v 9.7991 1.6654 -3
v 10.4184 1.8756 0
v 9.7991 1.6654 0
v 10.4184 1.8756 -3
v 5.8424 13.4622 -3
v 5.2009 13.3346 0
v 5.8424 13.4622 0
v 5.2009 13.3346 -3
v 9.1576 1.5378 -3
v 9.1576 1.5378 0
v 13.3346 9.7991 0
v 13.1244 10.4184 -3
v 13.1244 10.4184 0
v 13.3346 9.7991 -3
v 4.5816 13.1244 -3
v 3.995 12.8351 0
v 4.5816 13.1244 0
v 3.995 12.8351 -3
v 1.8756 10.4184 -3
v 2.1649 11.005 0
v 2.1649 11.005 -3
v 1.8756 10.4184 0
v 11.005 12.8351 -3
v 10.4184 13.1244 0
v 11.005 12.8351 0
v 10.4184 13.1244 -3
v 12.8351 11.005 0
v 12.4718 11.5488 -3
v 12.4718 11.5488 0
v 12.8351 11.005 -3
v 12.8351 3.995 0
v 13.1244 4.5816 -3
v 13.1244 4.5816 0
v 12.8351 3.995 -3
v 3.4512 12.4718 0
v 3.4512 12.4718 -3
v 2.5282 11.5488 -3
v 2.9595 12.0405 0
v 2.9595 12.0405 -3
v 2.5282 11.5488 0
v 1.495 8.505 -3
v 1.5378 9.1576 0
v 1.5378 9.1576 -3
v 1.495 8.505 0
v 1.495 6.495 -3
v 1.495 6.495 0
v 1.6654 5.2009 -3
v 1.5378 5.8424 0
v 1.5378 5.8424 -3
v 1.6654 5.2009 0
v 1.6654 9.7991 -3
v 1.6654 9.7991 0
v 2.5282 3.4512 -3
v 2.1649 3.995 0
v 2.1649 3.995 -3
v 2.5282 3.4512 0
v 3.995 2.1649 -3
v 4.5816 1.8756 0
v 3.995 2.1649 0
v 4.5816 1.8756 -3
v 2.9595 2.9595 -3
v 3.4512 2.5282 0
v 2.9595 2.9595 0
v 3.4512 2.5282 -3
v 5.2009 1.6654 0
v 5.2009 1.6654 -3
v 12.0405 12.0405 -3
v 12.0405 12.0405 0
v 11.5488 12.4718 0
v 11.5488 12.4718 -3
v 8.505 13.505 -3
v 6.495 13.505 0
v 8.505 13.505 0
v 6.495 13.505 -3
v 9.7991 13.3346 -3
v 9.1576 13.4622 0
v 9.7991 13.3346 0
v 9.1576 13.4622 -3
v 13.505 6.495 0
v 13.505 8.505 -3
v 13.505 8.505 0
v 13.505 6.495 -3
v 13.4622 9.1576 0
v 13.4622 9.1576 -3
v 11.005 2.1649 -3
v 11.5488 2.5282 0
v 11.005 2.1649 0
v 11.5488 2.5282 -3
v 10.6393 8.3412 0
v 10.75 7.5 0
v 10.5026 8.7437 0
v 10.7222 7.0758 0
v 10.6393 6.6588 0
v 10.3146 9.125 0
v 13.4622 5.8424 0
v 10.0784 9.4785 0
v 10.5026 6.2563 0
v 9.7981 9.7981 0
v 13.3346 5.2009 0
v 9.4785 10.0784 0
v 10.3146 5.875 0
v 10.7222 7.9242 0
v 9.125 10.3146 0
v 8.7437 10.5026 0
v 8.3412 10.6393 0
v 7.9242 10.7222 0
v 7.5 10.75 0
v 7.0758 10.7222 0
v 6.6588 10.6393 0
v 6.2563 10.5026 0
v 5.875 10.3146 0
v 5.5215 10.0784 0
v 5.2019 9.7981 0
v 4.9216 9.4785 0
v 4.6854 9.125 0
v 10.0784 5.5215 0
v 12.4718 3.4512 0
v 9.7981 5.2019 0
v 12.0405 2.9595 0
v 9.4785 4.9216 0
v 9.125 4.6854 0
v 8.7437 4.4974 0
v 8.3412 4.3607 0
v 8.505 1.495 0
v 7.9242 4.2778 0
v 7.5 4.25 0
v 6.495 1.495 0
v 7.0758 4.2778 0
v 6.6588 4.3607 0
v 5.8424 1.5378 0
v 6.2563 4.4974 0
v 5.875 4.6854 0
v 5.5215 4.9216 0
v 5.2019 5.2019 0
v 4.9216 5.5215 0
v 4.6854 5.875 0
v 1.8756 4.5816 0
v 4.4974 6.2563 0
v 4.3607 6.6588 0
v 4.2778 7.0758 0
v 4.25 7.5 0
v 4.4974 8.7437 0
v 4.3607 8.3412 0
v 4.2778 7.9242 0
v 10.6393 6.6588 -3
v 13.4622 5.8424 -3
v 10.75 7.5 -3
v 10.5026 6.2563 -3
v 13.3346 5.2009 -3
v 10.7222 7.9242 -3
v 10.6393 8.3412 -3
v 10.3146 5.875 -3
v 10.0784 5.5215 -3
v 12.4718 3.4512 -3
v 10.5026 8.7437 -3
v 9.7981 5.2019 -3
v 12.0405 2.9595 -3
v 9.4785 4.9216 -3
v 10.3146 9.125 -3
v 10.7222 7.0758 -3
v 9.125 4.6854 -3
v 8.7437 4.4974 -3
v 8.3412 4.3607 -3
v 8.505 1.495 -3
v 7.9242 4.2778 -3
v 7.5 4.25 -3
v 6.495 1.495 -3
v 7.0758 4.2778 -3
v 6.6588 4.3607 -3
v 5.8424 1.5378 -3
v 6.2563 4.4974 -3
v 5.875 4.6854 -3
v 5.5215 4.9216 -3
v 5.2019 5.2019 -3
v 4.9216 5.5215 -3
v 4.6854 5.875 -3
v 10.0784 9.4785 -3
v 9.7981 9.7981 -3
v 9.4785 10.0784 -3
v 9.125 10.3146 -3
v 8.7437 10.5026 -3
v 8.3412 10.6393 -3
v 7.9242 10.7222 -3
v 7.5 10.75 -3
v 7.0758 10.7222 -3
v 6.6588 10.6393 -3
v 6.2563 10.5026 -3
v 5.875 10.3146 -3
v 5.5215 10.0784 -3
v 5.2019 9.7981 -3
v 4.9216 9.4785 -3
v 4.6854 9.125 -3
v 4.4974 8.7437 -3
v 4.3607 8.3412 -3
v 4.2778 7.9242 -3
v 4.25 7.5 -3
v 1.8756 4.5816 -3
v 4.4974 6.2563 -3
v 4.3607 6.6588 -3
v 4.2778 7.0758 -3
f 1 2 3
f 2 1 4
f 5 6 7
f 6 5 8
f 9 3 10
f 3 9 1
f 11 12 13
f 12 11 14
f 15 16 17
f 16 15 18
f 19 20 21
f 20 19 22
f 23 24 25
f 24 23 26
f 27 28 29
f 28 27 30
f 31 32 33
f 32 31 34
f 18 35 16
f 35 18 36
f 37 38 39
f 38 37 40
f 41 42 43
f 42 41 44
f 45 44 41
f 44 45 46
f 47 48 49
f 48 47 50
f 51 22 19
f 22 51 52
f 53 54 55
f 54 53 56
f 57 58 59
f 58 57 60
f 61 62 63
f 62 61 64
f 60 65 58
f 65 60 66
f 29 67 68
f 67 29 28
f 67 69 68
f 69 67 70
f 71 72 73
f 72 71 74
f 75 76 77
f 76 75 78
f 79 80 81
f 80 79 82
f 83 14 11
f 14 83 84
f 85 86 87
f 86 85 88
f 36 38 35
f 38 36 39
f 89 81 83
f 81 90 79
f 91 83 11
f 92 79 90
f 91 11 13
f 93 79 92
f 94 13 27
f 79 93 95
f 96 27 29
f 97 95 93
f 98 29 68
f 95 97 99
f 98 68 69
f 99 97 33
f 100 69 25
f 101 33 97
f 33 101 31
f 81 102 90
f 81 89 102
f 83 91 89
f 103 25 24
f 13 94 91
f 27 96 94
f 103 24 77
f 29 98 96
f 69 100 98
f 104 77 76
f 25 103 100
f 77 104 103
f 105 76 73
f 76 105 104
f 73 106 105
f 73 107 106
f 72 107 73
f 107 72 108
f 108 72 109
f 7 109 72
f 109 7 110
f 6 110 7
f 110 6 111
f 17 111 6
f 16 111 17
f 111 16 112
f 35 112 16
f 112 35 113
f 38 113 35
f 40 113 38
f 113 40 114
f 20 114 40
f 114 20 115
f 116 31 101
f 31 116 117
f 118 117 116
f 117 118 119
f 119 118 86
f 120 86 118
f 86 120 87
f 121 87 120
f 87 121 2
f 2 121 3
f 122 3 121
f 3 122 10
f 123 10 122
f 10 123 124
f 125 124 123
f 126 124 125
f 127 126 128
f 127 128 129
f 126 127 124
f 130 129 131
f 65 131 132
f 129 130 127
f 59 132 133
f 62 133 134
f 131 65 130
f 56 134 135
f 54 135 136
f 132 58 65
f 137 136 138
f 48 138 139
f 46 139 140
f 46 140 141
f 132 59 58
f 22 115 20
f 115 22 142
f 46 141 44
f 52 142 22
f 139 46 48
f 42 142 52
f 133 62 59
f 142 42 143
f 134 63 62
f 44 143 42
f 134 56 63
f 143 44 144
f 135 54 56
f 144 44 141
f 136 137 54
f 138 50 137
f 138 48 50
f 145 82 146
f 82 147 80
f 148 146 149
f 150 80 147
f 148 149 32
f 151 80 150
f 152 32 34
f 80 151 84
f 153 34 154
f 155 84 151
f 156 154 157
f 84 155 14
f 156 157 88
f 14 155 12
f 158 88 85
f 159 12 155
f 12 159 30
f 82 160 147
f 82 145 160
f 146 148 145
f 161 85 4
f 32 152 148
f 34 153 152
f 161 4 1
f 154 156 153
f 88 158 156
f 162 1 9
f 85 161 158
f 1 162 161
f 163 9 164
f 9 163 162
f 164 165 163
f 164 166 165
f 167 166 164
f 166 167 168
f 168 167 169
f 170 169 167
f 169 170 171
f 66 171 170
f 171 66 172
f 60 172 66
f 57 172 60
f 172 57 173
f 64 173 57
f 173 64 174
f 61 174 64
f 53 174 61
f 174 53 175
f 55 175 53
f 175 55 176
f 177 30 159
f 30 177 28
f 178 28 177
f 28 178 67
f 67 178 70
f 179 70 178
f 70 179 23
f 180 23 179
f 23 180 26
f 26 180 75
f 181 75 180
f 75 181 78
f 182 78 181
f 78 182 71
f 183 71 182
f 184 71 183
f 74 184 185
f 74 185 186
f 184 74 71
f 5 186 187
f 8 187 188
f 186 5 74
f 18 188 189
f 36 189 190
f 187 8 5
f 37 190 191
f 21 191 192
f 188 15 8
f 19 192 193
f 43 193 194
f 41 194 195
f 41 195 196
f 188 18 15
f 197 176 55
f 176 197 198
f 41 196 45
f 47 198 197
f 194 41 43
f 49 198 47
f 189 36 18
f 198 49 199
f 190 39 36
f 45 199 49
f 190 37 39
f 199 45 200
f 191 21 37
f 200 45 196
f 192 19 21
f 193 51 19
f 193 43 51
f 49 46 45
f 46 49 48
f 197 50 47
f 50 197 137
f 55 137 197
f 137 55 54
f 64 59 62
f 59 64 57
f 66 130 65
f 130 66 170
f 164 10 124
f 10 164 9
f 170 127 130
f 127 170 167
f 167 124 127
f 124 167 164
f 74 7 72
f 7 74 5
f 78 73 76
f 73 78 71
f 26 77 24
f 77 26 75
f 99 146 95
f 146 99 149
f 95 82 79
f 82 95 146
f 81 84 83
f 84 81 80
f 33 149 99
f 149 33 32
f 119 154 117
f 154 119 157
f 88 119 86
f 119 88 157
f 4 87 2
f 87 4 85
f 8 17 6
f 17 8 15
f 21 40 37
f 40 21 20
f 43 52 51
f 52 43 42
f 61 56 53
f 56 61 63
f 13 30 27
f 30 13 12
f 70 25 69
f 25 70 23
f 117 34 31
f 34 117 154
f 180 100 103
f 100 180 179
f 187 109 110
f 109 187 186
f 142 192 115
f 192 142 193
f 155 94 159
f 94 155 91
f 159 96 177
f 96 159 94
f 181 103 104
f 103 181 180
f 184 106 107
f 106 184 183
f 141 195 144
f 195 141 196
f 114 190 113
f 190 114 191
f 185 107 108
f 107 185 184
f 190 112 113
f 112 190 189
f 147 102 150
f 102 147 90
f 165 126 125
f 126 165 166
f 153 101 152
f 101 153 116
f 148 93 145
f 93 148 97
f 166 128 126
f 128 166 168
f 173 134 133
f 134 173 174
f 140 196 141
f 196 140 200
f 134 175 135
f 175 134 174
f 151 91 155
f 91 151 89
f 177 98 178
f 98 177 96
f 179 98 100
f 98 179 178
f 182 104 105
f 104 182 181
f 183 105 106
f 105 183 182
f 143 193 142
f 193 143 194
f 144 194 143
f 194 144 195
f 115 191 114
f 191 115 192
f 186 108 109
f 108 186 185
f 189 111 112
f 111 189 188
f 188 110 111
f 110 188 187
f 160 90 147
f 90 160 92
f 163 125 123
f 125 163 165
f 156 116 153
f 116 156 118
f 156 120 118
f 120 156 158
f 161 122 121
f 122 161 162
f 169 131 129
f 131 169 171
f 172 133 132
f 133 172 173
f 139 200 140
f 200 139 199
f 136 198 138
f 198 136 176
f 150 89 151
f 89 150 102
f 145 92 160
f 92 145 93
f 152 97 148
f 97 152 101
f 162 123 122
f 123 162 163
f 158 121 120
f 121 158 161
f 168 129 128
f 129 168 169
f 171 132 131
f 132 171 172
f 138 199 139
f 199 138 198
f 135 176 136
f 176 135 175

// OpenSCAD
// Generated by SolidPython 1.1.3 on 2022-09-14 10:10:04
$fn = 48;


difference() {
	union() {
		color(alpha = 1.0000000000, c = "Gold") {
			translate(v = [7.5000000000, 7.5000000000, 0]) {
				rotate(a = [0, 0, 0]) {
					translate(v = [0, 0, -3]) {
						linear_extrude(height = 3) {
							offset(r = 5) {
								square(center = true, size = [2.0100000000, 2.0100000000]);
							}
						}
					}
				}
			}
		}
	}
	union() {
		color(alpha = 1.0000000000, c = "Gold") {
			translate(v = [7.5000000000, 7.5000000000, 0]) {
				rotate(a = [0, 0, 0]) {
					translate(v = [0, 0, -250]) {
						cylinder(h = 500, r = 3.2500000000);
					}
				}
			}
		}
	}
}
/***********************************************
*********      SolidPython code:      **********
************************************************
 
import subprocess

from solid.objects import *
from solid import scad_render_to_file, scad_render

import os

##################################################################################################################################################
##################################################################################################################################################
##################################################################################################################################################
##################################################################################################################################################
######  DIMENSION STUFF
##################################################################################################################################################
##################################################################################################################################################
##################################################################################################################################################
##################################################################################################################################################


mode = "3DPR"
#mode = "LAZE"
#mode = "TURE"
#mode = ""


######  Countersunk
countersunkM = []
WIDTH = 0
DEPTH = 1
countersunkM1width = 0; countersunkM1depth = 0; countersunkM2width = 0; countersunkM2depth = 0
countersunkM3width = 0
countersunkM3depth = 0
countersunkM4width = 0
countersunkM4depth = 0
countersunkM5width = 0
countersunkM5depth = 0
countersunkM6width = 0
countersunkM6depth = 0

######  Holes
holeM = []
holeM1 = 0
holeM2 = 0
holeM3 = 0
holeM4 = 0
holeM5 = 0
holeM6 = 0

######  Nuts
nutM = []
NUTWIDTH = 0
NUTDEPTH = 1
nutM1width = 0
nutM1depth = 0
nutM2width = 0
nutM2depth = 0
nutM3width = 0
nutM3depth = 0
nutM4width = 0
nutM4depth = 0
nutM5width = 0
nutM5depth = 0
nutM6width = 0
nutM6depth = 0

######  OOEB
ooebPinWidth = 0
ooebPinWidthWide = 0


######  Colors
colDefault = "Gold"

colOOEBbase = colDefault

colLEDRed = "red"
colWire = "gray"
    ######  Resistor
colRes = list()
colResistor = "beige"

colResBlack = "black"
colRes.append(colResBlack)
colResBrown = "brown"
colRes.append(colResBrown)
colResRed = "red"
colRes.append(colResRed)
colResOrange = "orange"
colRes.append(colResOrange)
colResYellow = "yellow"
colRes.append(colResYellow)
colResGreen = "green"
colRes.append(colResGreen)
colResBlue = "blue"
colRes.append(colResBlue)
colResPurple = "purple"
colRes.append(colResPurple)
colResGray = "gray"
colRes.append(colResGray)
colResWhite = "white"
colRes.append(colResWhite)





def changeMode(m="3DPR"):
    #print("####################################################      CHANGING MODES TO: " + m)
    global mode
    mode = m
    ######  Countersunk
    global countersunkM, countersunkM1width, countersunkM1depth, countersunkM2width, countersunkM2depth, countersunkM3width, countersunkM3depth, countersunkM4width, countersunkM4depth, countersunkM5width, countersunkM5depth, countersunkM6width, countersunkM6depth
    countersunkM = []
    countersunkM.append([0,0])
    countersunkM1width = 0 if mode== "3DPR" else 0
    countersunkM1depth = 0 if mode== "3DPR" else 0
    countersunkM.append([countersunkM1width,countersunkM1depth])
    countersunkM2width = 0 if mode== "3DPR" else 0
    countersunkM2depth = 0 if mode== "3DPR" else 0
    countersunkM.append([countersunkM2width,countersunkM2depth])
    countersunkM3width = 5.5/2+0.6 if mode== "3DPR" else 5.5/2
    countersunkM3depth = 1.7 if mode== "3DPR" else 1.7
    countersunkM.append([countersunkM3width,countersunkM3depth])
    countersunkM4width = 0 if mode== "3DPR" else 0
    countersunkM4depth = 0 if mode== "3DPR" else 0
    countersunkM.append([countersunkM4width,countersunkM4depth])
    countersunkM5width = 0 if mode== "3DPR" else 0
    countersunkM5depth = 0 if mode== "3DPR" else 0
    countersunkM.append([countersunkM5width,countersunkM5depth])
    countersunkM6width = 0 if mode== "3DPR" else 0
    countersunkM6depth = 0 if mode== "3DPR" else 0
    countersunkM.append([countersunkM6width,countersunkM6depth])
    ######  Holes
    global holeM, holeM1, holeM2, holeM3, holeM4, holeM5, holeM6, holeM7, holeM8
    holeM = []
    holeM1 = 1.2/2 if mode== "3DPR" else 1/2
    holeM2 = 2.3/2 if mode== "3DPR" else 2/2
    holeM3 = 3.4/2 if mode== "3DPR" else 3/2
    holeM4 = 4.4/2 if mode== "3DPR" else 4/2
    holeM5 = 5.4/2 if mode== "3DPR" else 5/2
    holeM6 = 6.5/2 if mode== "3DPR" else 6/2
    holeM7 = 7.5/2 if mode== "3DPR" else 7/2
    holeM8 = 8.6/2 if mode== "3DPR" else 8/2
    holeM.append(0)
    holeM.append(holeM1)
    holeM.append(holeM2)
    holeM.append(holeM3)
    holeM.append(holeM4)
    holeM.append(holeM5)
    holeM.append(holeM6)
    holeM.append(holeM7)
    holeM.append(holeM8)
    #####  Nuts
    global nutM, nutM1width, nutM1depth, nutM2width, nutM2depth, nutM3width, nutM3depth, nutM4width, nutM4depth, nutM5width, nutM5depth, nutM6width, nutM6depth
    nutM = []
    nutM.append([0,0]) 
    #M1 Nut
    nutM1width = 0
    nutM1depth = 0
    nutM.append([nutM1width,nutM1depth])    
    #M2 Nut
    nutM2width = 0
    nutM2depth = 0
    nutM.append([nutM2width,nutM2depth])    
    #M3 Nut
    nutM3width = 6.05 if mode== "3DPR" else 5.5
    nutM3depth = 2.5 if mode== "3DPR" else 2.5
    nutM.append([nutM3width,nutM3depth])    
    #M4 Nut
    nutM4width = 0
    nutM4depth = 0
    nutM.append([nutM4width,nutM4depth])    
    #M5 Nut
    nutM5width = 0
    nutM5depth = 0
    nutM.append([nutM5width,nutM5depth])    
    #M6 Nut
    nutM6width = 11 if mode== "3DPR" else 10
    nutM6depth = 5 if mode== "3DPR" else 5
    nutM.append([nutM6width,nutM6depth])    

    ######  OOEB
    global ooebPinWidth,  ooebPinWidthWide

    ooebPinWidth = 0.6
    if(mode=="3DPR" or mode=="LAZE"):
        ooebPinWidth = 0.6 + 0.6
    ooebPinWidthWide = 1.2
    if(mode=="3DPR" or mode=="LAZE"):
        ooebPinWidthWide = 1.2 + 0.6


changeMode()


""""    
holeM12D = s=="3DPR" ? 1.4/2 : 1.2/2;
holeM16D = s=="3DPR" ? 1.8/2 : 1.6/2;
holeM2 = s=="3DPR" ? 2.3/2 : 2/2;
holeM25D = s=="3DPR" ? 2.8/2 : 2.5/2;
holeM27D = s=="3DPR" ? 3.1/2 : 2.7/2;    
holeM3 = s=="3DPR" ? 3.4/2 : 3/2;
holeM35D = s=="3DPR" ? 3.9/2 : 35/2;
holeM4 = s=="3DPR" ? 4.4/2 : 4/2;
holeM5 = s=="3DPR" ? 5.4/2 : 5/2;
holeM6 = s=="3DPR" ? 6.5/2 : 6/2;
holeM6Minus = s=="3DPR" ? 5.8/2 : 5.9/2;
holeM7 = s=="3DPR" ? 7.5/2 : 7/2;
holeM8 = s=="3DPR" ? 8.6/2 : 8/2;
holeM9 = s=="3DPR" ? 9.6/2 : 9/2;
holeM10 = s=="3DPR" ? 10.6/2 : 10/2;
holeM11 = s=="3DPR" ? 11.6/2 : 11/2;
holeM12 = s=="3DPR" ? 12.6/2 : 12/2;
holeM13 = s=="3DPR" ? 13.6/2 : 13/2;
holeM14 = s=="3DPR" ? 14.6/2 : 14/2;
holeM15 = s=="3DPR" ? 15.6/2 : 15/2;
holeM16 = s=="3DPR" ? 16.6/2 : 16/2;
holeM17 = s=="3DPR" ? 17.6/2 : 17/2;
holeM18 = s=="3DPR" ? 18.6/2 : 18/2;
holeM19 = s=="3DPR" ? 19.6/2 : 19/2;
holeM20 = s=="3DPR" ? 20.6/2 : 20/2;
"""

##################################################################################################################################################
##################################################################################################################################################
##################################################################################################################################################
##################################################################################################################################################
######  REGULAR STUFF
##################################################################################################################################################
##################################################################################################################################################
##################################################################################################################################################
##################################################################################################################################################


def setMode(mode="3DPR"):
    changeMode(mode)

def getMode():
    return mode



def saveToScad(fileName, parts):
    dir =  os.path.dirname(os.path.abspath(fileName))
    Path(dir).mkdir(parents=True, exist_ok=True)
    file_out = scad_render_to_file(parts, fileName, file_header=f'$fn = 48;')


def saveToDxf(fileIn, fileOut=""):
    if fileOut == "":
        fileOut = fileIn.replace(".scad",".dxf")
    saveToFile(fileIn, fileOut)
    
def saveToPng(fileIn, fileOut="",extra="--render"):
    if fileOut == "":
        fileOut = fileIn.replace(".scad",".png")
    saveToFile(fileIn, fileOut)

def saveToStl(fileIn, fileOut=""):
    if fileOut == "":
        fileOut = fileIn.replace(".scad",".stl")
    saveToFile(fileIn, fileOut)
    
def saveToSvg(fileIn, fileOut=""):
    if fileOut == "":
        fileOut = fileIn.replace(".scad",".svg")
    saveToFile(fileIn, fileOut)

def saveToFile(fileIn, fileOut,extra=""):
    extra = extra + " --colorscheme Tomorrow"

    launchStr = 'openscad -o "' + fileOut + '"' + extra + ' "' + fileIn + '"'
    print("            saveToFile launch string: " + launchStr)
    subprocess.run(launchStr)
    x=0



def insert(item,pos=[None,None,None],x=0,y=0,z=0,ex=0,size=[None,None,None],length=0,rot=[None,None,None],rotX=0,rotY=0,rotZ=0,width=0,height=0,depth=100,rad=0,rad2=0,color=colDefault,alpha=1,OOwidth=0,OOheight=0,holes=True,negative=True, name=""):
    return OPSCInsert(item,pos,x,y,z,ex,size,length,rot,rotX,rotY,rotZ,width,height,depth,rad,rad2,color,alpha,OOwidth,OOheight,holes,negative,name)


def OPSCInsert(item,pos=[None,None,None],x=0,y=0,z=0,ex=0,size=[None,None,None],length=0,rot=[None,None,None],rotX=0,rotY=0,rotZ=0,width=0,height=0,depth=100,rad=0,rad2=0,col=colDefault,alpha=1,OOwidth=0,OOheight=0,holes=True,negative=True, name=""):
    
    """
        color(color,alpha){
            translate([x,y,z]){
                    rotate([rotX,rotY,rotZ]){
    """
    returnValue = ""

    #print(pos)

    if pos[0] != None:
        x=pos[0]
        y=pos[1]
        z=pos[2]
    if rot[0] != None:
        rotX=rot[0]
        rotY=rot[1]
        rotZ=rot[2]
    
    returnValue = color(col)(translate((x,y,z))(
                            rotate((rotX,rotY,rotZ))(
                                OPSCInsertIf(item,pos,x,y,z,ex,size,length,rot,rotX,rotY,rotZ,width,height,depth,rad,rad2,col,alpha,OOwidth,OOheight,holes,negative,name)
                            )
                        ))
                
    

    return returnValue

def OPSCInsertIf(item,pos=[None,None,None],x=0,y=0,z=0,ex=0,size=[None,None,None],length=0,rot=[None,None,None],rotX=0,rotY=0,rotZ=0,width=0,height=0,depth=100,rad=0,rad2=0,color=colDefault,alpha=1,OOwidth=0,OOheight=0,holes=True,negative=True, name=""):
    returnValue = cube([10,10,10])

    if size[0] != None:
        width=size[0]
        height=size[1]
        depth=size[2]

    #print("    OPSCInsert item:" + str(item) + " at:[" + str(x) + "," + str(y) + "," + str(z) + "] size: [" + str(width) + "," + str(height) + "," + str(depth) + "]")

    if(item=="cube"):
        returnValue =  translate([0,0,-depth/2])(cube([width,height,depth],center=True))
    elif(item=="cylinder"):        
        returnValue = translate([0,0,-depth/2])(cylinder(r=rad,h=depth,center=True))
    elif(item=="sphere"):        
        returnValue = translate([0,0,-rad])(sphere(r=rad))
    elif(item=="plane"):
        if depth == 100:
            returnValue = insert("cube",size=[1000,1000,0.1],color=color)            
        else:
            returnValue = insert("cube",size=[1000,1000,depth],color=color)                        
    elif(item=="cubeRounded"):
        if(rad == 0):
                            rad = 5
        returnValue =  translate([0,0,-depth])(
                        linear_extrude(height=depth)(                        
                            offset(r=rad)(
                                square((width-rad*2+.01,height-rad*2+.01),center=True)
                                )
                            )
        )
    ######  Countersunk
    elif(item == "countersunkM1" or item == "csM1" ):
        returnValue = OSPCgetCountersunk(rad=1)
    elif(item == "countersunkM2" or item == "csM2" ):
        returnValue = OSPCgetCountersunk(rad=2)
    elif(item == "countersunkM3" or item == "csM3" ):
        returnValue = OSPCgetCountersunk(rad=3)
    elif(item == "countersunkM4" or item == "csM4" ):
        returnValue = OSPCgetCountersunk(rad=4)
    elif(item == "countersunkM5" or item == "csM5" ):
        returnValue = OSPCgetCountersunk(rad=5)
    elif(item == "countersunkM6" or item == "csM6" ):
        returnValue = OSPCgetCountersunk(rad=6)
    elif(item == "countersunk" or item == "cs"):
        returnValue = OSPCgetCountersunk(rad=rad)


    ######  Holes    
    elif(item == "holeM1"):
        returnValue = OSPCgetHole(rad=1)
    elif(item == "holeM2"):
        returnValue = OSPCgetHole(rad=2)
    elif(item == "holeM3"):
        returnValue = OSPCgetHole(rad=3)
    elif(item == "holeM4"):
        returnValue = OSPCgetHole(rad=4)
    elif(item == "holeM5"):
        returnValue = OSPCgetHole(rad=5)
    elif(item == "holeM6"):
        returnValue = OSPCgetHole(rad=6)
    elif(item == "hole"):
        returnValue = OSPCgetHole(rad=rad)

    ######  Nuts
    elif(item == "nutM1"):
        returnValue = OSPCgetNut(rad=1,depth=depth)
    elif(item == "nutM2"):
        returnValue = OSPCgetNut(rad=2,depth=depth)
    elif(item == "nutM3"):
        returnValue = OSPCgetNut(rad=3,depth=depth)
    elif(item == "nutM4"):
        returnValue = OSPCgetNut(rad=4,depth=depth)
    elif(item == "nutM5"):
        returnValue = OSPCgetNut(rad=5,depth=depth)
    elif(item == "nutM6"):
        returnValue = OSPCgetNut(rad=6,depth=depth)
    elif(item == "nut"):
        returnValue = OSPCgetNut(rad=rad,depth=depth)
    return returnValue

                

def OSPCgetHole(rad):
    return translate([0,0,-250])(cylinder(r=holeM[rad],h=500))

def OSPCgetNut(rad,depth):
    depth = nutM[rad][NUTDEPTH] if depth==100 else depth
    returnValue = OPSChexagon(nutM[rad][NUTWIDTH],depth=depth)
    return returnValue

def OSPCgetCountersunk(rad):
    depth=countersunkM[rad][DEPTH]
    returnValue = translate([0,0,-depth])(cylinder(h=depth,r2=countersunkM[rad][WIDTH],r1=holeM[rad]))
    return returnValue

def OPSChexagon(width,depth):
    cutter = item()
    wid=width*2
    cutter.addPos(insert("cube",pos=[wid/2+width/2,0,0],size=[wid,wid,depth]))
    cutter.addPos(insert("cube",pos=[-wid/2-width/2,0,0],size=[wid,wid,depth]))

    cut = cutter.getPart()
    #print(depth)
    returnValue = difference()(
        translate([0,0,-depth/2])(cube([wid,wid,depth],center=True)),
        cut,
        rotate([0,0,60])(cut),
        rotate([0,0,-60])(cut)
    )

    return returnValue




class item:

    def __init__(self):
        self.posItems=list()
        self.negItems=list()

    def isEmpty(self):        
        testString = scad_render(self.getPart())
        #print("test String length: " + str(len(testString)))
        returnValue = False
        if len(testString) == 270:            
            returnValue = True
        return returnValue

    def addPos(self,part):
        self.posItems.append(part)
    def addNeg(self,part):
        self.negItems.append(part)

    def getPart(self):
        returnValue = difference()(
            union()(self.posItems),
            union()(self.negItems)
        )
        return returnValue

    def getLaser(self,start=0,layers=1,thickness=-3,tileDif=200):
        rv= []

        for x in range(layers):
            rv.append(translate([0,x*tileDif,0])(
                    projection()(
                        intersection()(
                            insert("plane",z=start+x*thickness),
                            self.getPart()
                        )
                    )
            )
            )
        return union()(rv)

    def getSplit(self,start=0,depth=6,tileDif=200):
        rv= []

        rv.append(translate([0,0,0])(
            intersection()(
                insert("cube",size=[100,100,depth],z=start),
                self.getPart()
            )
        )
        )

        rv.append(translate([0,tileDif,depth])(
            intersection()(
                insert("cube",size=[100,100,depth],z=start-depth),
                self.getPart()
            )
        )
        )        
        return union()(rv)


 
 
************************************************/
